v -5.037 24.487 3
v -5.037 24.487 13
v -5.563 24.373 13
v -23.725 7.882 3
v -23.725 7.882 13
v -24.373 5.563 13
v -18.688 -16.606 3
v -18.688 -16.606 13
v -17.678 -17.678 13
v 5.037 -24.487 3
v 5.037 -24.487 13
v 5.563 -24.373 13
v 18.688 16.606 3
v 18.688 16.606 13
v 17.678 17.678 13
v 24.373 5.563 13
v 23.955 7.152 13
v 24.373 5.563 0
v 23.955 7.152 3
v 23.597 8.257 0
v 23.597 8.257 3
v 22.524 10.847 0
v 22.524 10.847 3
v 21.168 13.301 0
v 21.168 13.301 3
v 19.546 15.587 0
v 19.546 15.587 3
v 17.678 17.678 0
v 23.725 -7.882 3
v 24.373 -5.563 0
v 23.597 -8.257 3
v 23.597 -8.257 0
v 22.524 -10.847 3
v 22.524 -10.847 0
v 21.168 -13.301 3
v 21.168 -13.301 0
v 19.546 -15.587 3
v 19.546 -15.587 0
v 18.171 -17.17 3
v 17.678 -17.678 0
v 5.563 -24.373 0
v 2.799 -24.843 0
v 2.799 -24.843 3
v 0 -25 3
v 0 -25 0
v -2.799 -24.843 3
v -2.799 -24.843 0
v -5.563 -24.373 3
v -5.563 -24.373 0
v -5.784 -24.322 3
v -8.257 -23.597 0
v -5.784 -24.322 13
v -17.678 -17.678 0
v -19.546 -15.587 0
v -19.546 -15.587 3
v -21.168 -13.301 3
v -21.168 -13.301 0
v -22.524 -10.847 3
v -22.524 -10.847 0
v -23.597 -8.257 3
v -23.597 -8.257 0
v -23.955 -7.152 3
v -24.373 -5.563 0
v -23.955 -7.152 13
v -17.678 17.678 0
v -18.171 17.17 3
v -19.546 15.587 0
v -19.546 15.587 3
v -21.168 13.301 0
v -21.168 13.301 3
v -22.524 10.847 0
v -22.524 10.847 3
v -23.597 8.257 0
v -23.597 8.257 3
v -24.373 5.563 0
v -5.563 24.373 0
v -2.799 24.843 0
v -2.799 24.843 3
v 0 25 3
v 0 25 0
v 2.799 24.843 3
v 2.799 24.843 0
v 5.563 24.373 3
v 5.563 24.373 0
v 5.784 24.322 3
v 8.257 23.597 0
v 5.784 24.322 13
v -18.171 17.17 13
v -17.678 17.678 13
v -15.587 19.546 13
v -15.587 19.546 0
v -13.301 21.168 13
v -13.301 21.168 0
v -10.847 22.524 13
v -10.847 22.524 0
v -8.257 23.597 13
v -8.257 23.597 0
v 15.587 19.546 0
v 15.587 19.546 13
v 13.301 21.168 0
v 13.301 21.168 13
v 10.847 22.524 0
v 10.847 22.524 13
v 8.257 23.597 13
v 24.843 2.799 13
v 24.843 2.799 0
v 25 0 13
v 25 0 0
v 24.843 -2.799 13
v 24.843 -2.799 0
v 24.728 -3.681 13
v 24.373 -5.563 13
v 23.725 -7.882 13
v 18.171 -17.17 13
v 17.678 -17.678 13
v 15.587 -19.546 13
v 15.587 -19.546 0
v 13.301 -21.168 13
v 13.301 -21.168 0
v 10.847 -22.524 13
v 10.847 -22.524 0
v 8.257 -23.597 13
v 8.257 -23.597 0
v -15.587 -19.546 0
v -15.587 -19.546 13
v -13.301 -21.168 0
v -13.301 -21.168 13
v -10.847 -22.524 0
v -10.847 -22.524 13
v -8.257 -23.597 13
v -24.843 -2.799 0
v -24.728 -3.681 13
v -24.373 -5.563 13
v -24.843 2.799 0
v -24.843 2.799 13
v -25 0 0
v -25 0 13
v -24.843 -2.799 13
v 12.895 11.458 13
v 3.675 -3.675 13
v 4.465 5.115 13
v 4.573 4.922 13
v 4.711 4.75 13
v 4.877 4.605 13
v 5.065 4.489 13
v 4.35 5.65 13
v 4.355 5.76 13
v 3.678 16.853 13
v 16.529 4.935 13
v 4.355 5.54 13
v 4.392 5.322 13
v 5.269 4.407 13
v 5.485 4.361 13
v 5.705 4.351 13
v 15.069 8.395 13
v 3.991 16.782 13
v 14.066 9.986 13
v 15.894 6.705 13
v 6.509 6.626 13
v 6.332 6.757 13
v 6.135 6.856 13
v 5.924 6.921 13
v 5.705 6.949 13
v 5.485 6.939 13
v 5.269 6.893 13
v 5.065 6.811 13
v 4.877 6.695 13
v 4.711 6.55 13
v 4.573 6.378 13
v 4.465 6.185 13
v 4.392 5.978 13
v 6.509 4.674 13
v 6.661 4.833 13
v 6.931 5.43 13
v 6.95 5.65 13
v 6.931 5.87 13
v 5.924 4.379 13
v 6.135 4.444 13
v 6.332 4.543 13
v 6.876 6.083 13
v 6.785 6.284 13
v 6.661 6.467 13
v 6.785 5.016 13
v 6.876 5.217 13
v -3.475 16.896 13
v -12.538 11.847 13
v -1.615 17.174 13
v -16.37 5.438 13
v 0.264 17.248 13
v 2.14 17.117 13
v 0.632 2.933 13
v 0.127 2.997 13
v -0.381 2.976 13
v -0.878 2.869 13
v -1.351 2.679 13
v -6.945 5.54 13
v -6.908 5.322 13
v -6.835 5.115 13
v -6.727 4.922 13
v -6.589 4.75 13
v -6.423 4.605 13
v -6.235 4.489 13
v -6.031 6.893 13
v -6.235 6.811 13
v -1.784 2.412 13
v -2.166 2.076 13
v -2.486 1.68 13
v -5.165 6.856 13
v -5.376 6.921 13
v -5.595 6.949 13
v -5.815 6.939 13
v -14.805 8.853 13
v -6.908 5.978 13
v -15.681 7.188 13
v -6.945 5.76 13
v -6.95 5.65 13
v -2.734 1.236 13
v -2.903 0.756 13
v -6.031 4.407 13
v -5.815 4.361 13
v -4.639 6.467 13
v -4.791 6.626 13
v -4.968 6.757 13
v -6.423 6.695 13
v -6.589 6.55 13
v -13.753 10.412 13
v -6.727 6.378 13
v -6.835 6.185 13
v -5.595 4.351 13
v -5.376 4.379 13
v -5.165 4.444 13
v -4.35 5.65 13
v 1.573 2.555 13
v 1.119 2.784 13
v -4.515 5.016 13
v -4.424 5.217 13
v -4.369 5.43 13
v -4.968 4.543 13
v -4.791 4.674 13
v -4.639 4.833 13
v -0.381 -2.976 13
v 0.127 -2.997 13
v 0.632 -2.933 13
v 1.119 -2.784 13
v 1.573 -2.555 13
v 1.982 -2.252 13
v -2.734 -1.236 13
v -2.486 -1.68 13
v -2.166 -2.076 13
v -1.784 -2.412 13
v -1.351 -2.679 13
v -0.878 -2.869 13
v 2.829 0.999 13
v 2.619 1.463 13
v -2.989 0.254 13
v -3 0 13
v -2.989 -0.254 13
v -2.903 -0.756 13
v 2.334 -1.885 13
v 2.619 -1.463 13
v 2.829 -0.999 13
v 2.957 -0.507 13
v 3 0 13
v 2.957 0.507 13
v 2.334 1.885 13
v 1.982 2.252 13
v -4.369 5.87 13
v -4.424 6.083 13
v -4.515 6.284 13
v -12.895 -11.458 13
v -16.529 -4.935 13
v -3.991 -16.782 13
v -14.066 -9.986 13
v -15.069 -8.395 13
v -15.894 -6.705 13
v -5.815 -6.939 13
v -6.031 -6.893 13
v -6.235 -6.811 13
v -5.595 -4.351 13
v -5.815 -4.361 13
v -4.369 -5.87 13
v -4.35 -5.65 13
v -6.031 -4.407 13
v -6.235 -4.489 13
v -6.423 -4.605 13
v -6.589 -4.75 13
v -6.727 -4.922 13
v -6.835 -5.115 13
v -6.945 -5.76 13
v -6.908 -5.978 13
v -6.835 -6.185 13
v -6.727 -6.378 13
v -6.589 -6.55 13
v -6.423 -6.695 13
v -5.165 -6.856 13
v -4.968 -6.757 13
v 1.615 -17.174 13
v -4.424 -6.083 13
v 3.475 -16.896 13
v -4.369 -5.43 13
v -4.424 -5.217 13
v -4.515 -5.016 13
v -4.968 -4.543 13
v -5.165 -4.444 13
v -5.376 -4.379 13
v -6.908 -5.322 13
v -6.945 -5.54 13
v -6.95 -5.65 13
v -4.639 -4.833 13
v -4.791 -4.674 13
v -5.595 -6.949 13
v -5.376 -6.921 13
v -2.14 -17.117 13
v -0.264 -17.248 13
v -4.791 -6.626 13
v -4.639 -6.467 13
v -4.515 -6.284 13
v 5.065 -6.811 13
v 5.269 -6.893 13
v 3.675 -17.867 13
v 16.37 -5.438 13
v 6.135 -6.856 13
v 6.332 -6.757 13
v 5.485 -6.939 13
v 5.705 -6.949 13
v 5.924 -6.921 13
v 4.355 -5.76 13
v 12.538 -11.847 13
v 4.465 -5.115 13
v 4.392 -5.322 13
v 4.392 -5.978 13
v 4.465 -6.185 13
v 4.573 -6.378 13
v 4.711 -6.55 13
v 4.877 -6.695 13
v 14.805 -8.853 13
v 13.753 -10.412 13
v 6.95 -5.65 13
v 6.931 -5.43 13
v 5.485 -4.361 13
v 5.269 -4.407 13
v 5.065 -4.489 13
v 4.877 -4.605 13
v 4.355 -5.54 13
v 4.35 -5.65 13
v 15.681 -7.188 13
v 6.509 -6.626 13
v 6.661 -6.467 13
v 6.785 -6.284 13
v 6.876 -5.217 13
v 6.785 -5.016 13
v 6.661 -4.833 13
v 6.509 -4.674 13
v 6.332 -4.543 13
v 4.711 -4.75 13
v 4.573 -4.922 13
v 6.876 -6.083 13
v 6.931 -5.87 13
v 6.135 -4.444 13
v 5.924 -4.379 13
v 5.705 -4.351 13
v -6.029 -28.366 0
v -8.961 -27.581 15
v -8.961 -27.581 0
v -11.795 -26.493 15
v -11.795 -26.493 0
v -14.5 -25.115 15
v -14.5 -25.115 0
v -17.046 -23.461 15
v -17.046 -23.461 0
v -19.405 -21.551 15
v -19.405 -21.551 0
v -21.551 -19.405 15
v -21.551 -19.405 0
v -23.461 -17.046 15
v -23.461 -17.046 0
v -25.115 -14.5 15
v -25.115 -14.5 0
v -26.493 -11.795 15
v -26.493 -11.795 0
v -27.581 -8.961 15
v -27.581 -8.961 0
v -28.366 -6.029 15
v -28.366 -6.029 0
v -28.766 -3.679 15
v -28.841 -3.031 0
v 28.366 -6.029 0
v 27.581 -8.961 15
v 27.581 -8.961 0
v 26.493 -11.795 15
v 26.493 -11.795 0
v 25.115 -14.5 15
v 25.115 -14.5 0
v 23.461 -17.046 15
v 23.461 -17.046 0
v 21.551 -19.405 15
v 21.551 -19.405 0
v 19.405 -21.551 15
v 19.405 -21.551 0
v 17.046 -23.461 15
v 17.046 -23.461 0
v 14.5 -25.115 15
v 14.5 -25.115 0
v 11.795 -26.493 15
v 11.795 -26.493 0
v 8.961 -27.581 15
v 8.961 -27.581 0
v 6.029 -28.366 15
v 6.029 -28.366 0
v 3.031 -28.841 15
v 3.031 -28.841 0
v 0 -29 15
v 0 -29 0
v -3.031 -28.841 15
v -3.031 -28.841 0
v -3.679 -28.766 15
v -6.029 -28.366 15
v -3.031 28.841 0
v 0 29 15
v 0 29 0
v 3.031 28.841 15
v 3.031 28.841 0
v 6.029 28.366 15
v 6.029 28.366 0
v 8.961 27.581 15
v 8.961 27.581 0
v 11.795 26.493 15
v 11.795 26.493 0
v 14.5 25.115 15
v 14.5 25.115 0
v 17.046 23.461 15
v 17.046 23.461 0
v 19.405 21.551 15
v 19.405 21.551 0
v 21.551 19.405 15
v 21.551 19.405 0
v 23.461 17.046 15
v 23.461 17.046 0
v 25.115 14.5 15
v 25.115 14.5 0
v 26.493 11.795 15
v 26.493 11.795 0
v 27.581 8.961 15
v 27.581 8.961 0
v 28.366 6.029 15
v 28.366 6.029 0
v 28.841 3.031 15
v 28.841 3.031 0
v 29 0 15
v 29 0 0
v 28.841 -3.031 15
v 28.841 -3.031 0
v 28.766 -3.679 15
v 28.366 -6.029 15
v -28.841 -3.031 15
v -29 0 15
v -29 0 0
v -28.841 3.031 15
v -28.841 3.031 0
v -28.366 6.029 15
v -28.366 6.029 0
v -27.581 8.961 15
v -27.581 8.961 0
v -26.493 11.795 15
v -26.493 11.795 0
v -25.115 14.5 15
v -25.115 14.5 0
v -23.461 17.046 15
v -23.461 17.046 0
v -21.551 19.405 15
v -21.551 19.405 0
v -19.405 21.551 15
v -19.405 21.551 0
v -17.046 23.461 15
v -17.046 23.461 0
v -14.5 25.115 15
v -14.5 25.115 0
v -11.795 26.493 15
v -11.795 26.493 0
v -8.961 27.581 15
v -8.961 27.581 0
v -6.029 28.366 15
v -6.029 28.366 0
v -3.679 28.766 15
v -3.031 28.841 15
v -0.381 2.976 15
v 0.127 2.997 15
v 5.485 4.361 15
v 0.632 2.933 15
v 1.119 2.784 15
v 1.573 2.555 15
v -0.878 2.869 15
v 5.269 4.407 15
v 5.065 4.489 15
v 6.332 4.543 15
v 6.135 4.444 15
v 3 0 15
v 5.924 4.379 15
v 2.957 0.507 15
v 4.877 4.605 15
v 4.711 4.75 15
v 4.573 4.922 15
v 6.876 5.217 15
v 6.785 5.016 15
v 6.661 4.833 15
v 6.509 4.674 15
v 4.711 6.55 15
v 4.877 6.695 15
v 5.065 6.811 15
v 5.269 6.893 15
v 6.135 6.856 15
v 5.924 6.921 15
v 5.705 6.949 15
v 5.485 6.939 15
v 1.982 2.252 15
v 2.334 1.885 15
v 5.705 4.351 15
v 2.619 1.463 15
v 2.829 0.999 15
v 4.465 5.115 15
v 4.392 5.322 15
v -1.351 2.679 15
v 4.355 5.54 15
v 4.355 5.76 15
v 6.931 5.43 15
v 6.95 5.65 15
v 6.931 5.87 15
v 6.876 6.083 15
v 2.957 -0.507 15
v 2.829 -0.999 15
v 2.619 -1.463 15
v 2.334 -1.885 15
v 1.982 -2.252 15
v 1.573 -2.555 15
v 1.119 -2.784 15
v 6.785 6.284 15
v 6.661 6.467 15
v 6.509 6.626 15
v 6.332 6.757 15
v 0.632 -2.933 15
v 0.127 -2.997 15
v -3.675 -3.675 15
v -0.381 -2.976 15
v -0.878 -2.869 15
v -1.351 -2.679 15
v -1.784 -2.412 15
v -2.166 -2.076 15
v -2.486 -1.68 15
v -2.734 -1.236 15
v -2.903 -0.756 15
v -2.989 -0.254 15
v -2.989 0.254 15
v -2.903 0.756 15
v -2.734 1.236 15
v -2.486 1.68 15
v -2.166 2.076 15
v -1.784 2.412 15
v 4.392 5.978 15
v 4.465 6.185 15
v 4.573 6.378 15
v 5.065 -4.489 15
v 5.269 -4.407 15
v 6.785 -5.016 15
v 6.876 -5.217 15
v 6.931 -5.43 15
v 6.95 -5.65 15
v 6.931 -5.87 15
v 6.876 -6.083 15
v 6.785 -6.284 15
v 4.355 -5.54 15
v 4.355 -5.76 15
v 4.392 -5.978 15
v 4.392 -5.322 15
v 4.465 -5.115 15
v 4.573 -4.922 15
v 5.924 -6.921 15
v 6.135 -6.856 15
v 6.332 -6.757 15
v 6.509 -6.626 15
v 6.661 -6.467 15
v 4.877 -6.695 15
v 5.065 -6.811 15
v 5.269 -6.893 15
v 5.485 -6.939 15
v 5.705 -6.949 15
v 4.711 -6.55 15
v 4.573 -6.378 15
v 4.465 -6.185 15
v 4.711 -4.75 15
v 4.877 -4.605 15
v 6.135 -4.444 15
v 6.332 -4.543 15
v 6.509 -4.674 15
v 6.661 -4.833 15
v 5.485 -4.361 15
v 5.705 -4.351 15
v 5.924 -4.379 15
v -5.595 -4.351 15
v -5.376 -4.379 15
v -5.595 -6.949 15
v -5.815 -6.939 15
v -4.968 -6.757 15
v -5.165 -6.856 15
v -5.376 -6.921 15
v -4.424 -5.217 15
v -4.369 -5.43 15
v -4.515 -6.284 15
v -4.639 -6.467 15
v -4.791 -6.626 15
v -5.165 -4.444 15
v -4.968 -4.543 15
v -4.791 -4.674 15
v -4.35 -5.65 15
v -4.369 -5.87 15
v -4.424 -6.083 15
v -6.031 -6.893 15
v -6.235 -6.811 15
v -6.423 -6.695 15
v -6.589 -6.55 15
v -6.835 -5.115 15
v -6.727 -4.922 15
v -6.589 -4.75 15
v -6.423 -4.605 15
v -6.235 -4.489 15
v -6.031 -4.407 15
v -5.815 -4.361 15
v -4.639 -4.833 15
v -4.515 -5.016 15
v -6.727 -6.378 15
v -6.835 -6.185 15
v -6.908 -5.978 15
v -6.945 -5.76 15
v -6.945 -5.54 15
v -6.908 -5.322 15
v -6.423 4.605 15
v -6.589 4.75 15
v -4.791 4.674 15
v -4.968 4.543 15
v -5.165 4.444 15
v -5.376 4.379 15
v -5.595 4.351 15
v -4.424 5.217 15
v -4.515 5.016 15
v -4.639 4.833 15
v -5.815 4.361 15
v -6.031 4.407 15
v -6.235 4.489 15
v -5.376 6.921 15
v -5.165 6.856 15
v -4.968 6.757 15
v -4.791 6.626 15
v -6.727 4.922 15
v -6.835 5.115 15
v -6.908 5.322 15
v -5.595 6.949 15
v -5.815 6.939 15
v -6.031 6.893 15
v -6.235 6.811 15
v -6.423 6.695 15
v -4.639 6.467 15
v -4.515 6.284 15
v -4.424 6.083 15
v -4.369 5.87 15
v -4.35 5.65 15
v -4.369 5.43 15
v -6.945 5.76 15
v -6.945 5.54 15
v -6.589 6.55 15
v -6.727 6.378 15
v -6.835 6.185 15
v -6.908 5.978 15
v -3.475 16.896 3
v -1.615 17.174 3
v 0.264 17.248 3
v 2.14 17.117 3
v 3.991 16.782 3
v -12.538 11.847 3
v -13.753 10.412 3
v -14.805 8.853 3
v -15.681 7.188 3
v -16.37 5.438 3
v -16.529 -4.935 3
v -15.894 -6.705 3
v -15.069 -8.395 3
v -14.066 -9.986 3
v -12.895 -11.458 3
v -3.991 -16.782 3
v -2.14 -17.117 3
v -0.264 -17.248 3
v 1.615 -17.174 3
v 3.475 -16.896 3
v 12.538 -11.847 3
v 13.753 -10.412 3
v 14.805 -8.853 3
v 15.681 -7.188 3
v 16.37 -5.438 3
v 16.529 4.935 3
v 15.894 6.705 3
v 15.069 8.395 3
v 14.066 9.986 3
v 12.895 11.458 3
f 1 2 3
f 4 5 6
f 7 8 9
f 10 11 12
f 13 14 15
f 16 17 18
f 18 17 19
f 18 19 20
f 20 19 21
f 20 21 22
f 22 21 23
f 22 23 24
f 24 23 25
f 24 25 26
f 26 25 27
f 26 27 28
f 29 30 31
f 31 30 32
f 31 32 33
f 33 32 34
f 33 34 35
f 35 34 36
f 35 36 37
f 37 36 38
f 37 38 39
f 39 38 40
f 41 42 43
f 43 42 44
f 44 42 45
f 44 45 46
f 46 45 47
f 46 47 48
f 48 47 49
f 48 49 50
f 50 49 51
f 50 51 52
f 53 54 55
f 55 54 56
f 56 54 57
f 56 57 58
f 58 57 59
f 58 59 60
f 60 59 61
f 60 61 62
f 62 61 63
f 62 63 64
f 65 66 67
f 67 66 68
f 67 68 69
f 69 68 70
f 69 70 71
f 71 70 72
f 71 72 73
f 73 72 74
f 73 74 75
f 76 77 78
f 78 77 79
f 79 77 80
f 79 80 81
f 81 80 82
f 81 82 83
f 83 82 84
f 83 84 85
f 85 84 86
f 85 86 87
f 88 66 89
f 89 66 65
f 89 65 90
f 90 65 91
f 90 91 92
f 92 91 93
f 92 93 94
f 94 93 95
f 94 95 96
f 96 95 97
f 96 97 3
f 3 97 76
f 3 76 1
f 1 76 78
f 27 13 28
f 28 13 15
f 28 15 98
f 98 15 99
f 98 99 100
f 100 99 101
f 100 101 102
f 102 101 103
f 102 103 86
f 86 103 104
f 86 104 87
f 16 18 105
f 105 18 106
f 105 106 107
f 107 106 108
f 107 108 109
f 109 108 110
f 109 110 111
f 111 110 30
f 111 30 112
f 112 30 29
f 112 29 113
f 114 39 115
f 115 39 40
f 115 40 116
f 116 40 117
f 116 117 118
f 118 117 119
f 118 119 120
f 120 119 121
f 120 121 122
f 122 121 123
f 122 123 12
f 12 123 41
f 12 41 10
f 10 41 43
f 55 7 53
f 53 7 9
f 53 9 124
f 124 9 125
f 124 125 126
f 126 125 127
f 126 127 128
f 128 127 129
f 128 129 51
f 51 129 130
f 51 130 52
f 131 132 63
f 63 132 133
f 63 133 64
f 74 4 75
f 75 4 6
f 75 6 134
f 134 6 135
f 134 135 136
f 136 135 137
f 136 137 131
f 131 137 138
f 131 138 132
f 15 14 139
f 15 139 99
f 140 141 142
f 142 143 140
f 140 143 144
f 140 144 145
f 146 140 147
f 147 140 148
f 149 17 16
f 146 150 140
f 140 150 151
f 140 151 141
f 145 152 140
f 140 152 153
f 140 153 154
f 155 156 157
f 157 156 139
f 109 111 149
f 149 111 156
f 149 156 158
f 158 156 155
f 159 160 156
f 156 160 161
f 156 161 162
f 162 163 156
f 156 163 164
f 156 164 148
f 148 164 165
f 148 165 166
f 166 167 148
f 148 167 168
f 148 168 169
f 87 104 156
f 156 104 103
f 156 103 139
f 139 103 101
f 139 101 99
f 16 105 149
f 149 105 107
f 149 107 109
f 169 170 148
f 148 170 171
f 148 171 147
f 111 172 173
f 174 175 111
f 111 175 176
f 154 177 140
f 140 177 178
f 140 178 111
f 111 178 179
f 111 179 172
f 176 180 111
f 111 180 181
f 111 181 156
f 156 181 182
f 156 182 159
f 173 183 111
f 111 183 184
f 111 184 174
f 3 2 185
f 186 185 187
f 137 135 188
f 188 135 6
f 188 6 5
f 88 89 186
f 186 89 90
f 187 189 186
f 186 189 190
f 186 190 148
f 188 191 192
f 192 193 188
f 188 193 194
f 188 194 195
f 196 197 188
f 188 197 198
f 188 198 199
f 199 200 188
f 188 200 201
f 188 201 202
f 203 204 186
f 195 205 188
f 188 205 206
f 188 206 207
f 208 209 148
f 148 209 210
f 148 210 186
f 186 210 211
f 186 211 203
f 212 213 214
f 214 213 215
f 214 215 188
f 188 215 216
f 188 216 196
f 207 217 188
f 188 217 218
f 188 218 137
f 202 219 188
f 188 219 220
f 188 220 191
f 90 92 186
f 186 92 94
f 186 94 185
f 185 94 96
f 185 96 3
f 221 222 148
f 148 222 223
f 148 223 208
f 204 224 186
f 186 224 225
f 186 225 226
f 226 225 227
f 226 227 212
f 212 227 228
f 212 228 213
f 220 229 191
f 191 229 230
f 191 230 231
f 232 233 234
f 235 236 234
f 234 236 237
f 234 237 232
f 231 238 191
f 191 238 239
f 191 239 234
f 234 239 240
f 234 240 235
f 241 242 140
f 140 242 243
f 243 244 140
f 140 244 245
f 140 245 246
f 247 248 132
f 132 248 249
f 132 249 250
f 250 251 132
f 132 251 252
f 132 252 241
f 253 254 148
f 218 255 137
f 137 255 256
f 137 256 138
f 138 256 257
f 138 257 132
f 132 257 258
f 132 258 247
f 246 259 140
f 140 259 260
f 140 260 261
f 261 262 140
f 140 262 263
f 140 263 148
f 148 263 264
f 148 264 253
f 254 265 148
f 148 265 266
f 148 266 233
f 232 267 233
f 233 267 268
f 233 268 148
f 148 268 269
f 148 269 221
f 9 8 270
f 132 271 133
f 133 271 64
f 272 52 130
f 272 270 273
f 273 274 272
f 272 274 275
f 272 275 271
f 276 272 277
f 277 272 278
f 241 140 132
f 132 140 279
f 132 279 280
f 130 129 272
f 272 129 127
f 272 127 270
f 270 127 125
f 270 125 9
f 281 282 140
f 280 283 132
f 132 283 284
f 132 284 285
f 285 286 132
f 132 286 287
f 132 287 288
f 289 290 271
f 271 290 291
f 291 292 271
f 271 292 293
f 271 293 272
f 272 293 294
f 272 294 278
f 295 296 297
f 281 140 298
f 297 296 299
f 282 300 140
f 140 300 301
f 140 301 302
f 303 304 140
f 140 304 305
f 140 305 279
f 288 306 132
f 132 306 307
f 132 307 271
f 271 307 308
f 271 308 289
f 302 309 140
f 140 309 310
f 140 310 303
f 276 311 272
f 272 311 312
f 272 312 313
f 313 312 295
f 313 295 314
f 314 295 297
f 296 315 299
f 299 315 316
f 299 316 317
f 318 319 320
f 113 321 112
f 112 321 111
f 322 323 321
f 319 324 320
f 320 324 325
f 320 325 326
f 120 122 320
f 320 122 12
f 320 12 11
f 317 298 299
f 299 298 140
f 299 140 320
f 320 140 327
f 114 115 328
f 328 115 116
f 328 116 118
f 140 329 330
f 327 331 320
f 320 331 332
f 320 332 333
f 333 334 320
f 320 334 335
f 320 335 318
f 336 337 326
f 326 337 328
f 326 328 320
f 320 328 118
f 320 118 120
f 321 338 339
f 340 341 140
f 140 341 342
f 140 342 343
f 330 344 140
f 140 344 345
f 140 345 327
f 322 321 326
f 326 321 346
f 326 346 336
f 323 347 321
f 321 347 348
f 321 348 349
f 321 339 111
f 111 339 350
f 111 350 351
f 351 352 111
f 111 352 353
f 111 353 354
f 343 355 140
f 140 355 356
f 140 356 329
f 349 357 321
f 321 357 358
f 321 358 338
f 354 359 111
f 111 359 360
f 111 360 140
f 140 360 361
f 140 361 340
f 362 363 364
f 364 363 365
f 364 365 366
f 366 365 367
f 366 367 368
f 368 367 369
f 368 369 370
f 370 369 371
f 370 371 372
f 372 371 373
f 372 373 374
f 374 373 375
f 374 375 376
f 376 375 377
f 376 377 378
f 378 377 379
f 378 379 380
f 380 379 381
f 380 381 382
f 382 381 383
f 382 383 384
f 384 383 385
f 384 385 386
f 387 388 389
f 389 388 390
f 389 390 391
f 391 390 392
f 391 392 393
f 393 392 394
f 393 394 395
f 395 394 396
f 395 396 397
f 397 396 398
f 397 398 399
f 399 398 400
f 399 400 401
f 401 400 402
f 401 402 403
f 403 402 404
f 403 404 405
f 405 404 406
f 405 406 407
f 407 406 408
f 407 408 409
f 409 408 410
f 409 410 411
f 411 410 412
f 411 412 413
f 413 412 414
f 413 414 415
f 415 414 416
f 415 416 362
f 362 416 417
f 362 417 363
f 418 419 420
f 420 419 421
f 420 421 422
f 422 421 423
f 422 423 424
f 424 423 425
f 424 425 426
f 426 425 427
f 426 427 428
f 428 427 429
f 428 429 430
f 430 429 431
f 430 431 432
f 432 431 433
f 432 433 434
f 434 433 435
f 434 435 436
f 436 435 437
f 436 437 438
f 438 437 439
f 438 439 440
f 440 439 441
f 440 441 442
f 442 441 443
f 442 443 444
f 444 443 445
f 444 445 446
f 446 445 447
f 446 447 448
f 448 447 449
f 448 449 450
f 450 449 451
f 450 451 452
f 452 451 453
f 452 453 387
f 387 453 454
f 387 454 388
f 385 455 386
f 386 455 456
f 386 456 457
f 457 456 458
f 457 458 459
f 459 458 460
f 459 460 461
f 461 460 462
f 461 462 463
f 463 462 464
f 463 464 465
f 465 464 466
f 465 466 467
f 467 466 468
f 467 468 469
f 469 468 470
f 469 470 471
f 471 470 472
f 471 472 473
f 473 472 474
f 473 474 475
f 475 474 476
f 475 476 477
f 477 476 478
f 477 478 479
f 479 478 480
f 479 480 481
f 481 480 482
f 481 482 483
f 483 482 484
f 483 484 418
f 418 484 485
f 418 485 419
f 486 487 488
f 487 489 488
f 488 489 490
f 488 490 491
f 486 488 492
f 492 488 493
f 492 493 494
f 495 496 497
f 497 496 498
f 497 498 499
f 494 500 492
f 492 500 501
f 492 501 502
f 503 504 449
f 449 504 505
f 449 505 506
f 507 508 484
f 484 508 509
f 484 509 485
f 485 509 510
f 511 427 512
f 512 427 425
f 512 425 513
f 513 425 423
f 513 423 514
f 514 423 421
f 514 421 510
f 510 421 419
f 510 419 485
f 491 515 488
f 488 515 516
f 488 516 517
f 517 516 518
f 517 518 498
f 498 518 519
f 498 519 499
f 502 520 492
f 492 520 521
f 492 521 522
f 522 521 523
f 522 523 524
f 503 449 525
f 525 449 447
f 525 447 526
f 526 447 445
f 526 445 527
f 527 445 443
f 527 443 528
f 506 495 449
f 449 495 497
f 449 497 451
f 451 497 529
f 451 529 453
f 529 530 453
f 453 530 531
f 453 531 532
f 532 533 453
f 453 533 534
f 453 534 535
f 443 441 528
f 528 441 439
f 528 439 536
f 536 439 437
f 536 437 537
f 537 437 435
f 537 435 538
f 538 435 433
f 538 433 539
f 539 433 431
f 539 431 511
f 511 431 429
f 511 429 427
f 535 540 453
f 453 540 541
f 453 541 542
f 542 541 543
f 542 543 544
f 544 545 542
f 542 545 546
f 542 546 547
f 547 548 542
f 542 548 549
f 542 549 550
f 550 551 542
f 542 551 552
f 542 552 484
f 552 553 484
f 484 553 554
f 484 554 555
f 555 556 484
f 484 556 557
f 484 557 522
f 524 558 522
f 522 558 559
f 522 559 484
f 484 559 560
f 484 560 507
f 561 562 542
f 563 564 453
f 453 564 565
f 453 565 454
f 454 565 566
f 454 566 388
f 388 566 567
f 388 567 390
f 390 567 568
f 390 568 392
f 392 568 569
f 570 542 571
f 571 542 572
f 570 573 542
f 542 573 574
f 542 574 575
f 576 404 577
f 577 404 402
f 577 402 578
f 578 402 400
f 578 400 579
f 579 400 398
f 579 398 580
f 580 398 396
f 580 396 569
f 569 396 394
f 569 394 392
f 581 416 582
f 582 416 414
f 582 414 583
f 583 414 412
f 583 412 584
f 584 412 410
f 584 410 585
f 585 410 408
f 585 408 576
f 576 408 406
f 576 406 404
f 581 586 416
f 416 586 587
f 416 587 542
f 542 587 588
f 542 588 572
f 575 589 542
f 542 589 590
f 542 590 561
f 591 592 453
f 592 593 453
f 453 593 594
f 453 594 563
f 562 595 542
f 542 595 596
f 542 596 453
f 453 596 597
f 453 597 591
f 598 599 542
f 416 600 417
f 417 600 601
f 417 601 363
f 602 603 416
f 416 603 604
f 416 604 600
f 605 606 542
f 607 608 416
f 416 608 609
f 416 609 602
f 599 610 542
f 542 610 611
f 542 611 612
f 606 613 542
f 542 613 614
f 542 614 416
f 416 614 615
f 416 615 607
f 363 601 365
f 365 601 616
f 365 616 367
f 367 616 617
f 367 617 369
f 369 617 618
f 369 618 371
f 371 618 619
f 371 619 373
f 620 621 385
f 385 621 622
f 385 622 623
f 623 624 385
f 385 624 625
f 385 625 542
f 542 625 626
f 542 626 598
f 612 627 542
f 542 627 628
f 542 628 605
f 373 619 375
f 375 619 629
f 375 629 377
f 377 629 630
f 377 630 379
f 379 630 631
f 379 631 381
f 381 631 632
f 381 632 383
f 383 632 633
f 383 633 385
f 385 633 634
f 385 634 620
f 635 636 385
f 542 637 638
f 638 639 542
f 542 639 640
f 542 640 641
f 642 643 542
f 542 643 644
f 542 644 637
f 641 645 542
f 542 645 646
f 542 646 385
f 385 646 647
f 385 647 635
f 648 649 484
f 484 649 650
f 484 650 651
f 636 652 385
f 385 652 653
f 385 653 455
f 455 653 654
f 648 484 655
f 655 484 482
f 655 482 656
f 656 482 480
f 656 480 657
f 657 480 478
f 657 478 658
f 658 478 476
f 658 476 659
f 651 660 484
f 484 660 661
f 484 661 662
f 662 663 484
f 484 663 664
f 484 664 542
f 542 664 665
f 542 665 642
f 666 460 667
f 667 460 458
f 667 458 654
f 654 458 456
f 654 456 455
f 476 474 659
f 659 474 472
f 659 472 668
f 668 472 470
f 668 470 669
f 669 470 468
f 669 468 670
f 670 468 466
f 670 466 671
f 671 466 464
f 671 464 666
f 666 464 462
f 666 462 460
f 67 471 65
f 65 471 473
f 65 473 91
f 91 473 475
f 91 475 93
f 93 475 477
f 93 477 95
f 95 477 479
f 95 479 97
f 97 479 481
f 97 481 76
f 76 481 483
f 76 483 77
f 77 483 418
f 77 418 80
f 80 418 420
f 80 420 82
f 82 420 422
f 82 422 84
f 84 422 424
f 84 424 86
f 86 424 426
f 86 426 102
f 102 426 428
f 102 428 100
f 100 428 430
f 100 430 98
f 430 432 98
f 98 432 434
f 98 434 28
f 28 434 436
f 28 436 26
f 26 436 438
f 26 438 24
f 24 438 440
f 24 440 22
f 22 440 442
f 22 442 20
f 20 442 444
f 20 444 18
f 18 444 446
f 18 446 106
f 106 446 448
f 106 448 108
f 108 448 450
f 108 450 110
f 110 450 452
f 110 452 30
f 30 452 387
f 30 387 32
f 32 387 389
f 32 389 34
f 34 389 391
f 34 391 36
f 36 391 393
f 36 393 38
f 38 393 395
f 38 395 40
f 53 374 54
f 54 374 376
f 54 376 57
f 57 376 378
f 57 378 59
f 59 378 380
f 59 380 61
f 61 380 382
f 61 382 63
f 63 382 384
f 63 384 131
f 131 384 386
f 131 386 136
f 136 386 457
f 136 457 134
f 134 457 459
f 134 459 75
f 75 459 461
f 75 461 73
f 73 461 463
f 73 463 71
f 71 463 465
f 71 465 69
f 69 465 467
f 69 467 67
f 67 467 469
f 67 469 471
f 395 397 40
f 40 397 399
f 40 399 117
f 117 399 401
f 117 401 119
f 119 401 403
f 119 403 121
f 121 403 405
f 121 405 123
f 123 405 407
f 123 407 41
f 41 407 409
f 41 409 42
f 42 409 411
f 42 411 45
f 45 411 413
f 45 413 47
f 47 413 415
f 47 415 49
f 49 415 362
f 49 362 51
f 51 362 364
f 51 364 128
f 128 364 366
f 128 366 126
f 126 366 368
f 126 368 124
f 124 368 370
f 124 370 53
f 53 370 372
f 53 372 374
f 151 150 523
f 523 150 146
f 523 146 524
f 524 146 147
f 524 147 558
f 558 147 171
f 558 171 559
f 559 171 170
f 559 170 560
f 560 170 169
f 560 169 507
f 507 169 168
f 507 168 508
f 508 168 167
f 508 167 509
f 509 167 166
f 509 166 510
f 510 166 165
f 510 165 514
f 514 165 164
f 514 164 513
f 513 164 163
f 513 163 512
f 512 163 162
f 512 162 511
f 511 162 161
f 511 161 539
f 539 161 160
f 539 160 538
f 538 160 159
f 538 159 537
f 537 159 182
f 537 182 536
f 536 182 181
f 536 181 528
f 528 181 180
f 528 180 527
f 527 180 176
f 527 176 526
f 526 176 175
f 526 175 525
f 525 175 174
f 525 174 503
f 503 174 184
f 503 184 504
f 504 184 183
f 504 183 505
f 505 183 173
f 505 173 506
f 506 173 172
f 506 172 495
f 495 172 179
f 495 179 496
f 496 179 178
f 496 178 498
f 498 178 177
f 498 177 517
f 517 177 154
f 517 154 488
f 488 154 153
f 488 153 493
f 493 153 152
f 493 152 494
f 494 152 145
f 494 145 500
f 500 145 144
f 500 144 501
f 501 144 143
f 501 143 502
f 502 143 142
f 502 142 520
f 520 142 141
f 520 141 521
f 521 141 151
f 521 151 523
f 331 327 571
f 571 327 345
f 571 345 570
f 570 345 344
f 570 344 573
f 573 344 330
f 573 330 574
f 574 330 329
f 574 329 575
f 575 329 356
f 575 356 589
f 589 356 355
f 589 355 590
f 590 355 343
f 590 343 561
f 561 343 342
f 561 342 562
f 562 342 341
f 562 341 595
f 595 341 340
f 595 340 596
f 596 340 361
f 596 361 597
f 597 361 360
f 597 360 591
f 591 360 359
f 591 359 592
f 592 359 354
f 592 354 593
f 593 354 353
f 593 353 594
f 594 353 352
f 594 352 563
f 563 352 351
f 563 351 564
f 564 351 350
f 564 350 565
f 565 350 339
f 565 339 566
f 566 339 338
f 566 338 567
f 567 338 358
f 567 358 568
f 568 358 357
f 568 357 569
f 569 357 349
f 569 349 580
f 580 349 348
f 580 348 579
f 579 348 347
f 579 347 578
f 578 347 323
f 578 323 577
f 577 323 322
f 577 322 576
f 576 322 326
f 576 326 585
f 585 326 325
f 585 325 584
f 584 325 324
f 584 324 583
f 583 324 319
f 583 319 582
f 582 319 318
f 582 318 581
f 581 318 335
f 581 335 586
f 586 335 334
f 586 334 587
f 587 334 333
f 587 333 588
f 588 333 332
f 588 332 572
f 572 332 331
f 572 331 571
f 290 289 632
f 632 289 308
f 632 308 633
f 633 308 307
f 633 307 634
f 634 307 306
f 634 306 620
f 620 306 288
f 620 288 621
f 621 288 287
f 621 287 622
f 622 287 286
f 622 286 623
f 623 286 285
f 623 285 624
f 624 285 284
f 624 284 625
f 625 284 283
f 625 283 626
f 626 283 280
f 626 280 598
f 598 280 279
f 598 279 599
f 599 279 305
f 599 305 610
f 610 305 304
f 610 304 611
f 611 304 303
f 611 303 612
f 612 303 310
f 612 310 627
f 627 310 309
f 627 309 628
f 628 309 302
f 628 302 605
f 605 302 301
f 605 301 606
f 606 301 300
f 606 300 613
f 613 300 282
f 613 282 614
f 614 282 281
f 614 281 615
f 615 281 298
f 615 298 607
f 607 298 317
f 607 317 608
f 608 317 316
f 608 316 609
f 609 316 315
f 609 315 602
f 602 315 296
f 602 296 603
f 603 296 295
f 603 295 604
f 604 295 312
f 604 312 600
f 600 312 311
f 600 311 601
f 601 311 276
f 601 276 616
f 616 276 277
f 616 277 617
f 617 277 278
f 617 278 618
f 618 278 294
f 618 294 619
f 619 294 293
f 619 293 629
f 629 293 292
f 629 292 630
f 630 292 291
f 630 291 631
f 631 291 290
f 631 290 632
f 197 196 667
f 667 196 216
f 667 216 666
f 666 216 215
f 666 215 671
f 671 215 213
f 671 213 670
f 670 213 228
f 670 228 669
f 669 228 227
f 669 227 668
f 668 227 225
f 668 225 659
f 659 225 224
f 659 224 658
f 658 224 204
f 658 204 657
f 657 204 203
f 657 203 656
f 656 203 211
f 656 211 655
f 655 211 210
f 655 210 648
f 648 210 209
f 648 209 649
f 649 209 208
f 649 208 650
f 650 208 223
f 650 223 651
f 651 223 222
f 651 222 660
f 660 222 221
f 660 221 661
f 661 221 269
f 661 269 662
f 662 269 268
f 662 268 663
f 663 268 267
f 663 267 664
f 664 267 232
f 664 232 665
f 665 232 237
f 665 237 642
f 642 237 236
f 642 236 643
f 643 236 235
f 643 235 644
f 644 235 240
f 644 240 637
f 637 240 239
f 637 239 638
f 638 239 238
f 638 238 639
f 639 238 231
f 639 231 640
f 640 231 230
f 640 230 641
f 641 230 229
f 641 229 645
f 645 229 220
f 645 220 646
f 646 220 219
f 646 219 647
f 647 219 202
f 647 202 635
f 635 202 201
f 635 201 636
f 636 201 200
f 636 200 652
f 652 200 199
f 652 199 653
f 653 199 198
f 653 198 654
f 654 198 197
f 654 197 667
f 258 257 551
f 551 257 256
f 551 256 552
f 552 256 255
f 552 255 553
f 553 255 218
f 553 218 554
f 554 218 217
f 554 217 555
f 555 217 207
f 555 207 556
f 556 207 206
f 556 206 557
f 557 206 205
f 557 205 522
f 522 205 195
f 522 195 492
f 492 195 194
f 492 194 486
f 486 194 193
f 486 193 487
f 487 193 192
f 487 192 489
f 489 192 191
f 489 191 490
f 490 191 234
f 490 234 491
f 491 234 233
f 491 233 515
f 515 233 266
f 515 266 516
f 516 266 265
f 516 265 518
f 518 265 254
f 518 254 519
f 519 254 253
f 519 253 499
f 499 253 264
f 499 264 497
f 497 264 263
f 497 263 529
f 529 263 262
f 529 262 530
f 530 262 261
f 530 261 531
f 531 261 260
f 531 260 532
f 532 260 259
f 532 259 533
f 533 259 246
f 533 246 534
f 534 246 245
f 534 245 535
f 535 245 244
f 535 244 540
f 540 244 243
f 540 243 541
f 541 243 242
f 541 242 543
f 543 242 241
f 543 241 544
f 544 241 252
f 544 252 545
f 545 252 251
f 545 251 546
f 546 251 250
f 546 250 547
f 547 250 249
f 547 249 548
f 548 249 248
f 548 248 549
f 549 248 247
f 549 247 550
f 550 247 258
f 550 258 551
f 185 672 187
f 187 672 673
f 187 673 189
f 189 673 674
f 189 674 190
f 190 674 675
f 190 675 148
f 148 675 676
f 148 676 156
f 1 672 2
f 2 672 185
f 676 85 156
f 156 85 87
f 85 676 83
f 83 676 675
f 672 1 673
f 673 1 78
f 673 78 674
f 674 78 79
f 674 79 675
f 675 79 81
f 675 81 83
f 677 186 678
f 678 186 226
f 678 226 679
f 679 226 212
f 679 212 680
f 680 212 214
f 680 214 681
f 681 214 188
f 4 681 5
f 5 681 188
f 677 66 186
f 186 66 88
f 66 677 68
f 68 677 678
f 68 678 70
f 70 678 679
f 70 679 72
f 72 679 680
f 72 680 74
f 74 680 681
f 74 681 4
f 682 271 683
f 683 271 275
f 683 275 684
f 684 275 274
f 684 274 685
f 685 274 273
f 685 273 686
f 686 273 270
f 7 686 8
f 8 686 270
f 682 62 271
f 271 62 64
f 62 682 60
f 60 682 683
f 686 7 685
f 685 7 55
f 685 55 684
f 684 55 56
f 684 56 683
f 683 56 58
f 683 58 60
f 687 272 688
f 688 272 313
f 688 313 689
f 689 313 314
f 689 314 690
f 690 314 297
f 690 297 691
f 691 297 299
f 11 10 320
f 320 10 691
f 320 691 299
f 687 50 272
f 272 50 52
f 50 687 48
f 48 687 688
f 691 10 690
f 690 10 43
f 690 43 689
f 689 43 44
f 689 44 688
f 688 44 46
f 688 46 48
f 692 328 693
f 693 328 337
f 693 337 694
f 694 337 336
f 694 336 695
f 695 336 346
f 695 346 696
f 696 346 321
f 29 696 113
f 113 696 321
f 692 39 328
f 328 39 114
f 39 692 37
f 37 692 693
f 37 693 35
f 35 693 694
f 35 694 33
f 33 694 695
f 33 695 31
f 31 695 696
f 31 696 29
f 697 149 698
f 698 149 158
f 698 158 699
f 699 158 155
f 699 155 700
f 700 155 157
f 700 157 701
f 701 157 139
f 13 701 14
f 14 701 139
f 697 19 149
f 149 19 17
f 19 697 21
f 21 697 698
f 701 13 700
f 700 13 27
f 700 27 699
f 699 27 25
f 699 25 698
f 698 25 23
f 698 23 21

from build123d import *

# Parameters (mm, degrees)
SKETCH_1_R          = 29
EXTRUDE_1_DEPTH     = 15
SKETCH_2_R          = 25
CUT_EXTRUDE_1_DEPTH = 13
CUT_EXTRUDE_2_REACH = 17
SKETCH_3_R          = 1.3
SKETCH_3_R_2        = 3
EXTRUDE_3_DEPTH     = 10


with BuildPart() as part:
    # 草图1 → 凸台-拉伸1 (new body)
    with BuildSketch(Plane.XY):
        Circle(SKETCH_1_R)
    extrude(amount=EXTRUDE_1_DEPTH)

    # 草图2 → 切除-拉伸1 (cut)
    with BuildSketch(Plane(origin=(0, 0, 0), x_dir=(-1, 0, 0), z_dir=(0, 0, -1))):
        Circle(SKETCH_2_R)
    extrude(amount=-CUT_EXTRUDE_1_DEPTH, mode=Mode.SUBTRACT)

    # 草图3 → 切除-拉伸2 (cut, up to next)
    with BuildSketch(Plane.XY.offset(15), mode=Mode.PRIVATE) as cut_extrude_2_sk1:
        with Locations((5.65, 5.65)):
            Circle(SKETCH_3_R)
    cut_extrude_2_tool1 = extrude(cut_extrude_2_sk1.sketch, amount=-CUT_EXTRUDE_2_REACH, mode=Mode.PRIVATE) & part.part
    add(cut_extrude_2_tool1.solids().sort_by_distance((5.65, 5.65, 15))[0], mode=Mode.SUBTRACT)
    # 草图3 → 切除-拉伸2 (cut, up to next)
    with BuildSketch(Plane.XY.offset(15), mode=Mode.PRIVATE) as cut_extrude_2_sk2:
        with Locations((5.65, -5.65)):
            Circle(SKETCH_3_R)
    cut_extrude_2_tool2 = extrude(cut_extrude_2_sk2.sketch, amount=-CUT_EXTRUDE_2_REACH, mode=Mode.PRIVATE) & part.part
    add(cut_extrude_2_tool2.solids().sort_by_distance((5.65, -5.65, 15))[0], mode=Mode.SUBTRACT)
    # 草图3 → 切除-拉伸2 (cut, up to next)
    with BuildSketch(Plane.XY.offset(15), mode=Mode.PRIVATE) as cut_extrude_2_sk3:
        with Locations((-5.65, -5.65)):
            Circle(SKETCH_3_R)
    cut_extrude_2_tool3 = extrude(cut_extrude_2_sk3.sketch, amount=-CUT_EXTRUDE_2_REACH, mode=Mode.PRIVATE) & part.part
    add(cut_extrude_2_tool3.solids().sort_by_distance((-5.65, -5.65, 15))[0], mode=Mode.SUBTRACT)
    # 草图3 → 切除-拉伸2 (cut, up to next)
    with BuildSketch(Plane.XY.offset(15), mode=Mode.PRIVATE) as cut_extrude_2_sk4:
        with Locations((-5.65, 5.65)):
            Circle(SKETCH_3_R)
    cut_extrude_2_tool4 = extrude(cut_extrude_2_sk4.sketch, amount=-CUT_EXTRUDE_2_REACH, mode=Mode.PRIVATE) & part.part
    add(cut_extrude_2_tool4.solids().sort_by_distance((-5.65, 5.65, 15))[0], mode=Mode.SUBTRACT)
    # 草图3 → 切除-拉伸2 (cut, up to next)
    with BuildSketch(Plane.XY.offset(15), mode=Mode.PRIVATE) as cut_extrude_2_sk5:
        Circle(SKETCH_3_R_2)
    cut_extrude_2_tool5 = extrude(cut_extrude_2_sk5.sketch, amount=-CUT_EXTRUDE_2_REACH, mode=Mode.PRIVATE) & part.part
    add(cut_extrude_2_tool5.solids().sort_by_distance((0, 0, 15))[0], mode=Mode.SUBTRACT)

    # 草图4 → 凸台-拉伸3 (add)
    with BuildSketch(Plane(origin=(0, 0, 13), x_dir=(-1, 0, 0), z_dir=(0, 0, -1))):
        with BuildLine():
            Line((3.475322722, 16.89629048), (5.036699597, 24.487377507))
            ThreePointArc((5.036699597, 24.487377507), (-0.382728828, 24.997070201), (-5.784012851, 24.321702147))
            Line((-5.784012851, 24.321702147), (-3.990968867, 16.781974482))
            ThreePointArc((-3.990968867, 16.781974482), (-0.264082892, 17.247978439), (3.475322722, 16.89629048))
        make_face()
        with BuildLine():
            Line((16.370278146, 5.438427476), (23.725040792, 7.881778951))
            ThreePointArc((23.725040792, 7.881778951), (21.4567334, 12.829987989), (18.171205497, 17.169953138))
            Line((18.171205497, 17.169953138), (12.538131793, 11.847267665))
            ThreePointArc((12.538131793, 11.847267665), (14.805146046, 8.852691712), (16.370278146, 5.438427476))
        make_face()
        with BuildLine():
            Line((12.894955424, -11.457863003), (18.688341195, -16.605598556))
            ThreePointArc((18.688341195, -16.605598556), (21.839462229, -12.167082212), (23.955218348, -7.151749009))
            Line((23.955218348, -7.151749009), (16.52910066, -4.934706816))
            ThreePointArc((16.52910066, -4.934706816), (15.069228938, -8.395286727), (12.894955424, -11.457863003))
        make_face()
        with BuildLine():
            Line((-3.475322722, -16.89629048), (-5.036699597, -24.487377507))
            ThreePointArc((-5.036699597, -24.487377507), (0.382728828, -24.997070201), (5.784012851, -24.321702147))
            Line((5.784012851, -24.321702147), (3.990968867, -16.781974482))
            ThreePointArc((3.990968867, -16.781974482), (0.264082892, -17.247978439), (-3.475322722, -16.89629048))
        make_face()
        with BuildLine():
            Line((-16.370278146, -5.438427476), (-23.725040792, -7.881778951))
            ThreePointArc((-23.725040792, -7.881778951), (-21.4567334, -12.829987989), (-18.171205497, -17.169953138))
            Line((-18.171205497, -17.169953138), (-12.538131793, -11.847267665))
            ThreePointArc((-12.538131793, -11.847267665), (-14.805146046, -8.852691712), (-16.370278146, -5.438427476))
        make_face()
        with BuildLine():
            Line((-12.894955424, 11.457863003), (-18.688341195, 16.605598556))
            ThreePointArc((-18.688341195, 16.605598556), (-21.839462229, 12.167082212), (-23.955218348, 7.151749009))
            Line((-23.955218348, 7.151749009), (-16.52910066, 4.934706816))
            ThreePointArc((-16.52910066, 4.934706816), (-15.069228938, 8.395286727), (-12.894955424, 11.457863003))
        make_face()
    extrude(amount=EXTRUDE_3_DEPTH)


solid = part.part
